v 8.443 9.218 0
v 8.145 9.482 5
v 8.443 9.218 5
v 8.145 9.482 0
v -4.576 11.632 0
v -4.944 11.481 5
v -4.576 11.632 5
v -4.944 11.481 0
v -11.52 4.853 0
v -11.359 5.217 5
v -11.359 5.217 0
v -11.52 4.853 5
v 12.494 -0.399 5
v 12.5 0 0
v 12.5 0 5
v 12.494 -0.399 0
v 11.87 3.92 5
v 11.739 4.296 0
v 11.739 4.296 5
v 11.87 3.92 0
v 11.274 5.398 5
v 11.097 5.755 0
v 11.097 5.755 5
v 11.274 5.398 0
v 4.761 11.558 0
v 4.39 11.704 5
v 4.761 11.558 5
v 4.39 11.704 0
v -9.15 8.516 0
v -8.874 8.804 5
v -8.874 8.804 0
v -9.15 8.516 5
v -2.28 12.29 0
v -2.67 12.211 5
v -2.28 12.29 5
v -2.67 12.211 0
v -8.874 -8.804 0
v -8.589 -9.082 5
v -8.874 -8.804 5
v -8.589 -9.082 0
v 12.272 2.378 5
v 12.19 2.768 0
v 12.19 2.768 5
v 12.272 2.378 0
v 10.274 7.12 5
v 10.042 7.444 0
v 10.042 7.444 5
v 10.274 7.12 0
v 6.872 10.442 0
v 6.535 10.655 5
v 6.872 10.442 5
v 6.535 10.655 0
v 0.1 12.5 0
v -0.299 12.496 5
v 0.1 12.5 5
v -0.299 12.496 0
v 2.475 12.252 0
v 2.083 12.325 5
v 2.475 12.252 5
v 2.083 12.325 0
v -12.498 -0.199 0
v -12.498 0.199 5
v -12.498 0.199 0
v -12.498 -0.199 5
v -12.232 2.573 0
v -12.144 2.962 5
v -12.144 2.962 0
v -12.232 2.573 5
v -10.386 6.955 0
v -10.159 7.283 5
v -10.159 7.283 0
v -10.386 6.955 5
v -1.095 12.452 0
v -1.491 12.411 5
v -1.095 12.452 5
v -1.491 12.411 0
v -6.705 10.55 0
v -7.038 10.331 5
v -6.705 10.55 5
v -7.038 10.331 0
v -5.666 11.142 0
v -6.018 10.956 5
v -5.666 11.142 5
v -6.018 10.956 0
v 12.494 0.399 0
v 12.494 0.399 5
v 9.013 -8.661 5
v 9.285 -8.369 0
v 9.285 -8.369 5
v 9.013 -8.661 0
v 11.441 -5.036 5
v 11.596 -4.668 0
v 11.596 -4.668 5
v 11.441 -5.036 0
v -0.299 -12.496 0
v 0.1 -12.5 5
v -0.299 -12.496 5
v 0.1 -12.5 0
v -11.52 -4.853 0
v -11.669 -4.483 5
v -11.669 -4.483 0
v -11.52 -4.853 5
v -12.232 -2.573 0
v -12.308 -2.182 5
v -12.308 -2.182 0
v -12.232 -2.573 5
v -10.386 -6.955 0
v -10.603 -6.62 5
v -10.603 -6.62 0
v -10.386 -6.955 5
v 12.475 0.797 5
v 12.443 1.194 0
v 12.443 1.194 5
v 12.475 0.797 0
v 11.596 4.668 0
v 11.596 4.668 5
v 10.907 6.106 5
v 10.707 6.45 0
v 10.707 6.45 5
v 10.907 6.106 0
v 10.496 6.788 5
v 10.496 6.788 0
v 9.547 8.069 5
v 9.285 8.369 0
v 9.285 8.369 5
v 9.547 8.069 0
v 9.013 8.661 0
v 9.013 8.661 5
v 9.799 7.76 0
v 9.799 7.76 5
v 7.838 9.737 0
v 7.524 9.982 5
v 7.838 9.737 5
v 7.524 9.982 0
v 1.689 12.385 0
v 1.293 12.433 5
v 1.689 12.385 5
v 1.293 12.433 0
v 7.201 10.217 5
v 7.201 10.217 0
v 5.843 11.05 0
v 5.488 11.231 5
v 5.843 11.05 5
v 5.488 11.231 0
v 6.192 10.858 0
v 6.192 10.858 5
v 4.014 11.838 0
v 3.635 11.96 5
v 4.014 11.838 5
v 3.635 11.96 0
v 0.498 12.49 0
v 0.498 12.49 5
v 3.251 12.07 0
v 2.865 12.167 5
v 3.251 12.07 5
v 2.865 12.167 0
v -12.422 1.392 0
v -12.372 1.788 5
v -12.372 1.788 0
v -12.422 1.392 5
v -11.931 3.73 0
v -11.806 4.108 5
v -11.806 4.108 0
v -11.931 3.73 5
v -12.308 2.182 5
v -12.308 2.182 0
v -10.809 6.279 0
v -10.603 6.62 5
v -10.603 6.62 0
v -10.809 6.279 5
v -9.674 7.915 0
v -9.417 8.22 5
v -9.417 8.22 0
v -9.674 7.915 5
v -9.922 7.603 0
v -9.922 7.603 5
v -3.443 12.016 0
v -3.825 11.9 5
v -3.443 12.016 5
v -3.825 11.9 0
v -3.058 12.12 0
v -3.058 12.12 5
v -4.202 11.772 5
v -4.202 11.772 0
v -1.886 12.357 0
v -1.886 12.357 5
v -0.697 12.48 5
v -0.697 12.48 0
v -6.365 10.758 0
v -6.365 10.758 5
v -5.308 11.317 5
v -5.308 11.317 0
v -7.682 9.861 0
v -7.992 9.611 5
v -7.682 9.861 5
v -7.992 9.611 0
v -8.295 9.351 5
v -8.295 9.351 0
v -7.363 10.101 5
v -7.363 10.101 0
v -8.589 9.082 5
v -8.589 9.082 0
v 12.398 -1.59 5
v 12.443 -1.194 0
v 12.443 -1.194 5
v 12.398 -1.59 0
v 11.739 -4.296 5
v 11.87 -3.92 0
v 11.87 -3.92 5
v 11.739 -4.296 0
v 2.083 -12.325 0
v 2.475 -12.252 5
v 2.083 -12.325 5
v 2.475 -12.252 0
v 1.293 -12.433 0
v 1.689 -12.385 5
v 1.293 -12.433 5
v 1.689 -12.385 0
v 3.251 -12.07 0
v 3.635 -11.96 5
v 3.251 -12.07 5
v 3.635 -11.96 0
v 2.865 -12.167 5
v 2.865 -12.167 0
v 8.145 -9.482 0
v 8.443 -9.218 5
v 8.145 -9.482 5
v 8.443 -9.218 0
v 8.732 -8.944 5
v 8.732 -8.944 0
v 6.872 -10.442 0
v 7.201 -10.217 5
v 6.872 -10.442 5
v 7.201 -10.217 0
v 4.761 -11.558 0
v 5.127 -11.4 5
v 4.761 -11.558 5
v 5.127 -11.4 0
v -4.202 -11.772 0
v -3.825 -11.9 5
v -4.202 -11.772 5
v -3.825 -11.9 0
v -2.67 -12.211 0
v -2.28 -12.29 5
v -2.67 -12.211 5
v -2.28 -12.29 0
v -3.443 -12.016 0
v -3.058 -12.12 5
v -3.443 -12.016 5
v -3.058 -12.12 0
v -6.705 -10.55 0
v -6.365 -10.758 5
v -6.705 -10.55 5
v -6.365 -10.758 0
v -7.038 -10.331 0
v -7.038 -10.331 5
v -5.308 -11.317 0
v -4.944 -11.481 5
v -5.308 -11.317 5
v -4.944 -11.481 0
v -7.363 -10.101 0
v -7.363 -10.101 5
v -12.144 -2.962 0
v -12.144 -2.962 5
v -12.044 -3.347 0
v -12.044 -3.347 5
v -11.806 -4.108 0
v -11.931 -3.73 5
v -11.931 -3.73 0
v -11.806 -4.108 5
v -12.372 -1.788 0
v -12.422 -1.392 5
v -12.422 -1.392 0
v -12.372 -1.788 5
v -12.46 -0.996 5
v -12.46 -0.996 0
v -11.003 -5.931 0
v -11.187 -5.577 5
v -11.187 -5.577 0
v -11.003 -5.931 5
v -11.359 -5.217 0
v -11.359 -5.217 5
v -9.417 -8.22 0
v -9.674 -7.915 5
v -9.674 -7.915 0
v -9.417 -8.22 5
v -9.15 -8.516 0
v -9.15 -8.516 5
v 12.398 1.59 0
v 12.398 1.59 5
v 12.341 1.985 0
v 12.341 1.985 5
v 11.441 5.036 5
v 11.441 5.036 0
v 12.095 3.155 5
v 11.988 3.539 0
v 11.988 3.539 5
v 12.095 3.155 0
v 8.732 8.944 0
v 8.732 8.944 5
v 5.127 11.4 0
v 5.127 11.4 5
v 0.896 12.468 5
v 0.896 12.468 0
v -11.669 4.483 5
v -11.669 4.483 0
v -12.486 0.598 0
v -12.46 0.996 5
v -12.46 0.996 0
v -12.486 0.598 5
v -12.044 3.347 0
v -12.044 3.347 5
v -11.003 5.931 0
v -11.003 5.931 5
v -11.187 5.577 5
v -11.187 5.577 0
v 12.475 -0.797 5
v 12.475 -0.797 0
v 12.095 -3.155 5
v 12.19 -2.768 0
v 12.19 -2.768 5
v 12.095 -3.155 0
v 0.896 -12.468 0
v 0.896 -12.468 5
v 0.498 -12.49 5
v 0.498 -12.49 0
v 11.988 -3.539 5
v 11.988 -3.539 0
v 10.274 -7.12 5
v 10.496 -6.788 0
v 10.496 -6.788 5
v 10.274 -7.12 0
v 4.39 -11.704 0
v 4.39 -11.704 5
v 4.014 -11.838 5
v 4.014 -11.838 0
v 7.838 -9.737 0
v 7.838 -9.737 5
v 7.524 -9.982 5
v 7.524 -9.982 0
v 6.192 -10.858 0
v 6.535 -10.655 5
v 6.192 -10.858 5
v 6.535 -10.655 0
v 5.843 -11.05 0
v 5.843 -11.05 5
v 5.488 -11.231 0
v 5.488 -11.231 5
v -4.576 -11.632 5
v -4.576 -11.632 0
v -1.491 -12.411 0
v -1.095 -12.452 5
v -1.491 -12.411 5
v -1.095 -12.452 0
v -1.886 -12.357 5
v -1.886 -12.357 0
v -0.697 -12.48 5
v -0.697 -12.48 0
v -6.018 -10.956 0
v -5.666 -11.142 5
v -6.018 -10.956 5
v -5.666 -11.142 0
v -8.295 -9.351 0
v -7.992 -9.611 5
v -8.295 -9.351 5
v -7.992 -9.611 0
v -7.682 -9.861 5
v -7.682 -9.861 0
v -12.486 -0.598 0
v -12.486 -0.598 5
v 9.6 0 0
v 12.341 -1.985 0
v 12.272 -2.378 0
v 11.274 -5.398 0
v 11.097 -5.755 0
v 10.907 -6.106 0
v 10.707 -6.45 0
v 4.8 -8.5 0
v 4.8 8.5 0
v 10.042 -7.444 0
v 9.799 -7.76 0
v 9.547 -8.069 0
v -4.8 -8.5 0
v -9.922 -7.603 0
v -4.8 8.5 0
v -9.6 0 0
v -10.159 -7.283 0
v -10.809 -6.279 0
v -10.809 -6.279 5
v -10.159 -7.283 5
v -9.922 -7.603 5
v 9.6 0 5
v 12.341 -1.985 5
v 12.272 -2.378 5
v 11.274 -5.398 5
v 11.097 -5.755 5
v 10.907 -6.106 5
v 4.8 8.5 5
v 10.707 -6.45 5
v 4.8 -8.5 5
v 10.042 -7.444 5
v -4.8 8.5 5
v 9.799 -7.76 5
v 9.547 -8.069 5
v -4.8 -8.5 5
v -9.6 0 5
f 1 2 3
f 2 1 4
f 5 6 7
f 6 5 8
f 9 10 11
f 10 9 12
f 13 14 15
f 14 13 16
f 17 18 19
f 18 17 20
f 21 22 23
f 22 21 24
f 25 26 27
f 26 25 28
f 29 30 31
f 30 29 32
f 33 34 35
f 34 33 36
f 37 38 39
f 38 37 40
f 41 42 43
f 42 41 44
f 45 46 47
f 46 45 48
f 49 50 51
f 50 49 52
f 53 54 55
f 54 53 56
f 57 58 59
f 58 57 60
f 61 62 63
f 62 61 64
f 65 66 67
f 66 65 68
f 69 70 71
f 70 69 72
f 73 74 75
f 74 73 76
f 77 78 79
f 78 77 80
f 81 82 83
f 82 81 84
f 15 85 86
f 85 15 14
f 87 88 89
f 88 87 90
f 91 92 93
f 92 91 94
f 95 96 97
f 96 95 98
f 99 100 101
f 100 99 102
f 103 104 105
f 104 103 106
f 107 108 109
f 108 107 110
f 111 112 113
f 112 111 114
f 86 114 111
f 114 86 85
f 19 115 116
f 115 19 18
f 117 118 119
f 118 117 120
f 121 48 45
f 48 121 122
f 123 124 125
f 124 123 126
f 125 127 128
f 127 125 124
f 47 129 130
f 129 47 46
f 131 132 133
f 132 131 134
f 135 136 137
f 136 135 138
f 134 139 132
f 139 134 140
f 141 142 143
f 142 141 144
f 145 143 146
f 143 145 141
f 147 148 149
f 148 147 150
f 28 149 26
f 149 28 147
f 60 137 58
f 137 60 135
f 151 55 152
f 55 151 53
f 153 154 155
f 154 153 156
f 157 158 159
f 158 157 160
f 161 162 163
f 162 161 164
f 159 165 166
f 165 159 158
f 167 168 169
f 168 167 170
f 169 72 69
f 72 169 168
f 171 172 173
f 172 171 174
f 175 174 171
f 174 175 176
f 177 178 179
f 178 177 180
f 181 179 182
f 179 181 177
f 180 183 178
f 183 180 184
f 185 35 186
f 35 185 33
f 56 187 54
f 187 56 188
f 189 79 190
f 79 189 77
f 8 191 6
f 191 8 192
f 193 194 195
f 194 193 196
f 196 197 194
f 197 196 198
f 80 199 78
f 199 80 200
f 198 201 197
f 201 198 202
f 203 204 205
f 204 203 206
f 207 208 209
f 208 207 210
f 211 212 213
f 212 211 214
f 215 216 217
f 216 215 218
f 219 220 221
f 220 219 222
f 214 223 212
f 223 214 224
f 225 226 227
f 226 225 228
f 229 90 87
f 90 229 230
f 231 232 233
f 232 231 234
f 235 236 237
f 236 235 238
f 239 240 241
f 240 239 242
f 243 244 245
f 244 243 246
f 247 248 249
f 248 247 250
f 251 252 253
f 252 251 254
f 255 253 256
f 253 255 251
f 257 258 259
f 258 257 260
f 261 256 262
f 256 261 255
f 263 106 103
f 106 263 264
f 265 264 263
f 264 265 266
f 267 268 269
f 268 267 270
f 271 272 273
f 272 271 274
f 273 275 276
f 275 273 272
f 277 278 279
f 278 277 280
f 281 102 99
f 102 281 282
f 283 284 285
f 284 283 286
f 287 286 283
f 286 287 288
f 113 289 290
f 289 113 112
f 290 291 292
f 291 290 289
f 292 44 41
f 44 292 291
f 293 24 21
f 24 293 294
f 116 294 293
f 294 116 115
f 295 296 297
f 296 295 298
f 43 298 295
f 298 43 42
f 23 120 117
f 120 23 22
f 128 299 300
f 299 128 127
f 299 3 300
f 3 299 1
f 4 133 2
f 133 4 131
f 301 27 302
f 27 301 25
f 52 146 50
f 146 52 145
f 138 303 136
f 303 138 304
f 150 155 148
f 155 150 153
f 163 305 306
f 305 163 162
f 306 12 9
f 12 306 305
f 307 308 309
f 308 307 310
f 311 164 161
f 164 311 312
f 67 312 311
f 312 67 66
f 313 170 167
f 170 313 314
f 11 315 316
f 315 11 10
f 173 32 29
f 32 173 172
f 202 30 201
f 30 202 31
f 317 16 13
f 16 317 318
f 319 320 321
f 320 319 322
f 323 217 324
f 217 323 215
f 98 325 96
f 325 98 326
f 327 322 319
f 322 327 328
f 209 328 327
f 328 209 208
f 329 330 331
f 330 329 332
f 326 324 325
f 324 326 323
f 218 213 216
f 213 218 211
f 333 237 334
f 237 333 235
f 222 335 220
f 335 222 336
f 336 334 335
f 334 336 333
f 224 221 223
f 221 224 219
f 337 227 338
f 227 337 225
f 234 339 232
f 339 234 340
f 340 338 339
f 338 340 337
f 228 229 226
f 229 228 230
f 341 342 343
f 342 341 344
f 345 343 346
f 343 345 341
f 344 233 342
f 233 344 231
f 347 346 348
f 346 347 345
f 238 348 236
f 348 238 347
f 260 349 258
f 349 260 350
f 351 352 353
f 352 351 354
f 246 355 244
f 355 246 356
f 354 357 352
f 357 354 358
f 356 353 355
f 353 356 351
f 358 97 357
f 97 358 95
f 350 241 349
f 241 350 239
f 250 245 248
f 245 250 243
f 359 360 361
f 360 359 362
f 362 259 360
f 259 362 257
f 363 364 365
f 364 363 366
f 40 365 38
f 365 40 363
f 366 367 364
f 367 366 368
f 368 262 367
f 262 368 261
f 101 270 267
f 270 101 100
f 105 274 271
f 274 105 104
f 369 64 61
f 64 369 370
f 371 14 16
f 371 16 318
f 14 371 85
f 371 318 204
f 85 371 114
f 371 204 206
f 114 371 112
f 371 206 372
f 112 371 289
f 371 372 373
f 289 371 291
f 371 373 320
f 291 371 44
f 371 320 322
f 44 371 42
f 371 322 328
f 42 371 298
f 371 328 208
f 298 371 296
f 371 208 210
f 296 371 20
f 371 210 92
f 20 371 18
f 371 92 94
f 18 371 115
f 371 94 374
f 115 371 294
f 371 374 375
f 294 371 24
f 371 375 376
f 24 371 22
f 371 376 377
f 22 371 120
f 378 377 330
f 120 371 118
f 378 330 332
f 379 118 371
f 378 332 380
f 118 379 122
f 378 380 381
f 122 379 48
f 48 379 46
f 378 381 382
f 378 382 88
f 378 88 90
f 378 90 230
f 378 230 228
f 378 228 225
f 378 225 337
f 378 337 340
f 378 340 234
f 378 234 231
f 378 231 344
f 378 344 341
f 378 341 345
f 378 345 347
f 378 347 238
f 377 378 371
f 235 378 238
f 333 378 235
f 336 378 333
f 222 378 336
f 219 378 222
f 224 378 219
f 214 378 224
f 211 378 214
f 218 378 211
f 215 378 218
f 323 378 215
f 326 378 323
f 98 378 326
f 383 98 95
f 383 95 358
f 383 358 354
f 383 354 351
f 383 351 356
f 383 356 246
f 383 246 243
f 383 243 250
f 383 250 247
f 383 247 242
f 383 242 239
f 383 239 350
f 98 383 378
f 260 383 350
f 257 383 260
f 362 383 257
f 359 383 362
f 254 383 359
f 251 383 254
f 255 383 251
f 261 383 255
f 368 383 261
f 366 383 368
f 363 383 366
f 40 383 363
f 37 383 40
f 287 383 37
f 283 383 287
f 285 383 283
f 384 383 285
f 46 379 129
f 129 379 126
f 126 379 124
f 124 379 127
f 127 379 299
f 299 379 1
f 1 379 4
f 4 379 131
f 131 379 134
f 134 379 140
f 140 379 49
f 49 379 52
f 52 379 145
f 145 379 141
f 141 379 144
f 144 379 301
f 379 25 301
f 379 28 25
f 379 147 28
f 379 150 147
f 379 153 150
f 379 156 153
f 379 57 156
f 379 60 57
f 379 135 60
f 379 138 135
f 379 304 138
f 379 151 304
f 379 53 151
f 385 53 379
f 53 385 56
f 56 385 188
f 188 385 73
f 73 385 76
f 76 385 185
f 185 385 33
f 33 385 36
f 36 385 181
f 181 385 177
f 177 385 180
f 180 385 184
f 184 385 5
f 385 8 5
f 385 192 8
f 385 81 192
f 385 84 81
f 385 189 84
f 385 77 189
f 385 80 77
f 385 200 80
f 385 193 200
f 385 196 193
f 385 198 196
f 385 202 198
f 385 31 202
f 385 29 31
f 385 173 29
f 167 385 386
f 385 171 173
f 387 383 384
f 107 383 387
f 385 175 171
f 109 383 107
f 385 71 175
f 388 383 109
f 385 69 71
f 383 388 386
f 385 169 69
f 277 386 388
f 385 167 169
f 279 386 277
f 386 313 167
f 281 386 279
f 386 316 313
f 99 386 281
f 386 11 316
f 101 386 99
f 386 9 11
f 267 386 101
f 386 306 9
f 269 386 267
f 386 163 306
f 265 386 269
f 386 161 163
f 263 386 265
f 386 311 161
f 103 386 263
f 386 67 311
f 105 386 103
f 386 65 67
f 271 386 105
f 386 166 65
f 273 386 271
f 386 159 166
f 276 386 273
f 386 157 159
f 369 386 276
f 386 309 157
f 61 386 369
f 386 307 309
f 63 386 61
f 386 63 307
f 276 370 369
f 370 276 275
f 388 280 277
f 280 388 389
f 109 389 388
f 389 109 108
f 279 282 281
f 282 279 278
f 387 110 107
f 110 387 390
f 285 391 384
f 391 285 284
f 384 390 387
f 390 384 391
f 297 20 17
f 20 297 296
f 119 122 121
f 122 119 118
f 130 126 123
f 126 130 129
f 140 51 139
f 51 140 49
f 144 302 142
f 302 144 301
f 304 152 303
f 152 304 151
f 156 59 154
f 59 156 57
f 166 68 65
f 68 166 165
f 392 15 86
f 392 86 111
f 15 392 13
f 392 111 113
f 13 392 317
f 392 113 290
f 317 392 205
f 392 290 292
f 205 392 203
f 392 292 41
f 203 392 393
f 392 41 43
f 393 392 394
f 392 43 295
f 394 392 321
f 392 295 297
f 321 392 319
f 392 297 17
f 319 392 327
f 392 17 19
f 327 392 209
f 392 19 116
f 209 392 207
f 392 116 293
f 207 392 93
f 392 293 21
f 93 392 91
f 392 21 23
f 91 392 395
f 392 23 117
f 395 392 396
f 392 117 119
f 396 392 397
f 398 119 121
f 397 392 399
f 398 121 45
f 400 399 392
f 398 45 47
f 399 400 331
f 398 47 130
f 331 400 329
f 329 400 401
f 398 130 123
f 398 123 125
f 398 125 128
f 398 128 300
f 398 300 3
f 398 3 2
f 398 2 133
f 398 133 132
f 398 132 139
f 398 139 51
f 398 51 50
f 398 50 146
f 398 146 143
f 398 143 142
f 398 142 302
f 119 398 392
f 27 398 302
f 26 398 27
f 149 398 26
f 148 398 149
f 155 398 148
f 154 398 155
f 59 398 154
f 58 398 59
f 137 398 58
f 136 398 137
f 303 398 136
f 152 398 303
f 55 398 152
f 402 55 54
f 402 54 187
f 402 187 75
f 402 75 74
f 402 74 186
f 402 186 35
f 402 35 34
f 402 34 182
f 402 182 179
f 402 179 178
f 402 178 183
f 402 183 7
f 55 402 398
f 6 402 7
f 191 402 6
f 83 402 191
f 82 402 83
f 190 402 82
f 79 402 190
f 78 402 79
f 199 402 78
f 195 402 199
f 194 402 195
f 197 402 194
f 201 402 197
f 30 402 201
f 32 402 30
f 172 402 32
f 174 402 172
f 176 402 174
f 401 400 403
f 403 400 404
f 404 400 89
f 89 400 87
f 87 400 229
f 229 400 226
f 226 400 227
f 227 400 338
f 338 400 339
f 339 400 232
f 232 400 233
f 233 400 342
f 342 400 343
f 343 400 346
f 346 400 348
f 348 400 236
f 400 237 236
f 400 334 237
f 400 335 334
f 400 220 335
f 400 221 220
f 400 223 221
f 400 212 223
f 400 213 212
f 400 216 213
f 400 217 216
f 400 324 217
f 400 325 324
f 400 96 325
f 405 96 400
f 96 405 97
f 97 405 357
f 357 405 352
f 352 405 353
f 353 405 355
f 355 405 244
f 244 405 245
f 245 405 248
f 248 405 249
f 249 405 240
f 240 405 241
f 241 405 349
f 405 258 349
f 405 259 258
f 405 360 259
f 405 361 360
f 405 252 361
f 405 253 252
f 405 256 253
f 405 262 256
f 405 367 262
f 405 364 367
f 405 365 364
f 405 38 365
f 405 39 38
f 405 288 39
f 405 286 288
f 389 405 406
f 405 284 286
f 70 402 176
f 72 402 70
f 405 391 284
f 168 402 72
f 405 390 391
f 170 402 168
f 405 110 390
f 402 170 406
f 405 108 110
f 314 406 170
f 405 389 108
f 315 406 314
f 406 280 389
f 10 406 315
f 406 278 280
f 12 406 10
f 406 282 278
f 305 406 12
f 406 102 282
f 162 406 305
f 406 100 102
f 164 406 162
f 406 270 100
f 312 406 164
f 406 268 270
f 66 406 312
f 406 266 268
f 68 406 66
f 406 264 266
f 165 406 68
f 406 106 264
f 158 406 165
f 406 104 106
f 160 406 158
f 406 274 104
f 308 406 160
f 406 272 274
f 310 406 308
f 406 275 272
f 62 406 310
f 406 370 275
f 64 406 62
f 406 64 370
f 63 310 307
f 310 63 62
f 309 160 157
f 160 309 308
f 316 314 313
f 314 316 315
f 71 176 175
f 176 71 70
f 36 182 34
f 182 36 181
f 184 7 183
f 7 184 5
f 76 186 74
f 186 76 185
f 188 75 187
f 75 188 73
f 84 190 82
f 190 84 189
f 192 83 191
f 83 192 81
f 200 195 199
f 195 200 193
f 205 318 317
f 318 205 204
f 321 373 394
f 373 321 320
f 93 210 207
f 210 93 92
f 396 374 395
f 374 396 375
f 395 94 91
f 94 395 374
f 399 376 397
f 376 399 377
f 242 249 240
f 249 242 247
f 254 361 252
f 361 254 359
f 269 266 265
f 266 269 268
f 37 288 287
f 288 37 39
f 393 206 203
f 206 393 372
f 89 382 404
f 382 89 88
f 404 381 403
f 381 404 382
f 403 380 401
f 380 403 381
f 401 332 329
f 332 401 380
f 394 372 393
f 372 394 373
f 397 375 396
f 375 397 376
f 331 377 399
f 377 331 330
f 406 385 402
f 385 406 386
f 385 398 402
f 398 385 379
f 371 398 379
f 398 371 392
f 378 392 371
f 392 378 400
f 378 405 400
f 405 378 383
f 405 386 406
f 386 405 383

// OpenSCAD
$fa=1;
$fs=0.4;
nut_e=19.2;
nut_s=17;
difference() {
    cylinder(d=25, h=5);
    linear_extrude(height =15, center=true) {
polygon([[-(nut_e/2), 0], [-(nut_e/4), (nut_s/2)], [(nut_e/4), (nut_s/2)], [(nut_e/2), 0], [(nut_e/4), -(nut_s/2)], [-(nut_e/4), -(nut_s/2)]]);
    }
}
